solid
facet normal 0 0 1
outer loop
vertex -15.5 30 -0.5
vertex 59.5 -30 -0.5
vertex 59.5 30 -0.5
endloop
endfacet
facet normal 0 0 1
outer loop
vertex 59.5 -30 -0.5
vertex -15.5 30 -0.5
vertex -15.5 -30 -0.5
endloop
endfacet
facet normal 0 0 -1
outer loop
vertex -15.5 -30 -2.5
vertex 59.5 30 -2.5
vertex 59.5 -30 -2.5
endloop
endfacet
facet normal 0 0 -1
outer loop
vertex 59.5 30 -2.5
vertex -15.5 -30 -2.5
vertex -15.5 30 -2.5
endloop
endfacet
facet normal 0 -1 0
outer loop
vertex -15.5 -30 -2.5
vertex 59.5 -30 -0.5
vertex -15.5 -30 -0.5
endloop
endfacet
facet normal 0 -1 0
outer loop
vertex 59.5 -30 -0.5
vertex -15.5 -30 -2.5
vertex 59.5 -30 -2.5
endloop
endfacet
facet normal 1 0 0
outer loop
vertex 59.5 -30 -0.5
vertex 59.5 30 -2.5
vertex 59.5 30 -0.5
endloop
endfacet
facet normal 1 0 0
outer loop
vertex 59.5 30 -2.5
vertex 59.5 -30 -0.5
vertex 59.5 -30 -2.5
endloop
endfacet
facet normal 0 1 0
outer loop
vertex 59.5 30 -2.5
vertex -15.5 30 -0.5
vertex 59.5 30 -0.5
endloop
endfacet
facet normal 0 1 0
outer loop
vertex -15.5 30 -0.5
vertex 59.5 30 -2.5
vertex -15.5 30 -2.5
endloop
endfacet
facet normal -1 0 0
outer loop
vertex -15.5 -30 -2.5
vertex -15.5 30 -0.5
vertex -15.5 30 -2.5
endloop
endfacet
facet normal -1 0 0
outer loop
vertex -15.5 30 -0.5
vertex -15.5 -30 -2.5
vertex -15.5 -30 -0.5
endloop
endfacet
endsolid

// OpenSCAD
/*

Copyright (c) 2017 Paul Austin

Permission is hereby granted, free of charge, to any person obtaining a copy
of this software and associated documentation files (the "Software"), to deal
in the Software without restriction, including without limitation the rights
to use, copy, modify, merge, publish, distribute, sublicense, and/or sell
copies of the Software, and to permit persons to whom the Software is
furnished to do so, subject to the following conditions:

The above copyright notice and this permission notice shall be included in
all copies or substantial portions of the Software.

THE SOFTWARE IS PROVIDED "AS IS", WITHOUT WARRANTY OF ANY KIND, EXPRESS OR
IMPLIED, INCLUDING BUT NOT LIMITED TO THE WARRANTIES OF MERCHANTABILITY,
FITNESS FOR A PARTICULAR PURPOSE AND NONINFRINGEMENT. IN NO EVENT SHALL THE
AUTHORS OR COPYRIGHT HOLDERS BE LIABLE FOR ANY CLAIM, DAMAGES OR OTHER
LIABILITY, WHETHER IN AN ACTION OF CONTRACT, TORT OR OTHERWISE, ARISING FROM,
OUT OF OR IN CONNECTION WITH THE SOFTWARE OR THE USE OR OTHER DEALINGS IN
THE SOFTWARE.

*/

$fn = 40;


// Units are in millimeters

// Board is just over 50 mm wide
board_width = 51.4;
pin_pitch = 1.27;

// Base board
translate([22, 0, -1.5])
cube([75, 60, 2], true);        
